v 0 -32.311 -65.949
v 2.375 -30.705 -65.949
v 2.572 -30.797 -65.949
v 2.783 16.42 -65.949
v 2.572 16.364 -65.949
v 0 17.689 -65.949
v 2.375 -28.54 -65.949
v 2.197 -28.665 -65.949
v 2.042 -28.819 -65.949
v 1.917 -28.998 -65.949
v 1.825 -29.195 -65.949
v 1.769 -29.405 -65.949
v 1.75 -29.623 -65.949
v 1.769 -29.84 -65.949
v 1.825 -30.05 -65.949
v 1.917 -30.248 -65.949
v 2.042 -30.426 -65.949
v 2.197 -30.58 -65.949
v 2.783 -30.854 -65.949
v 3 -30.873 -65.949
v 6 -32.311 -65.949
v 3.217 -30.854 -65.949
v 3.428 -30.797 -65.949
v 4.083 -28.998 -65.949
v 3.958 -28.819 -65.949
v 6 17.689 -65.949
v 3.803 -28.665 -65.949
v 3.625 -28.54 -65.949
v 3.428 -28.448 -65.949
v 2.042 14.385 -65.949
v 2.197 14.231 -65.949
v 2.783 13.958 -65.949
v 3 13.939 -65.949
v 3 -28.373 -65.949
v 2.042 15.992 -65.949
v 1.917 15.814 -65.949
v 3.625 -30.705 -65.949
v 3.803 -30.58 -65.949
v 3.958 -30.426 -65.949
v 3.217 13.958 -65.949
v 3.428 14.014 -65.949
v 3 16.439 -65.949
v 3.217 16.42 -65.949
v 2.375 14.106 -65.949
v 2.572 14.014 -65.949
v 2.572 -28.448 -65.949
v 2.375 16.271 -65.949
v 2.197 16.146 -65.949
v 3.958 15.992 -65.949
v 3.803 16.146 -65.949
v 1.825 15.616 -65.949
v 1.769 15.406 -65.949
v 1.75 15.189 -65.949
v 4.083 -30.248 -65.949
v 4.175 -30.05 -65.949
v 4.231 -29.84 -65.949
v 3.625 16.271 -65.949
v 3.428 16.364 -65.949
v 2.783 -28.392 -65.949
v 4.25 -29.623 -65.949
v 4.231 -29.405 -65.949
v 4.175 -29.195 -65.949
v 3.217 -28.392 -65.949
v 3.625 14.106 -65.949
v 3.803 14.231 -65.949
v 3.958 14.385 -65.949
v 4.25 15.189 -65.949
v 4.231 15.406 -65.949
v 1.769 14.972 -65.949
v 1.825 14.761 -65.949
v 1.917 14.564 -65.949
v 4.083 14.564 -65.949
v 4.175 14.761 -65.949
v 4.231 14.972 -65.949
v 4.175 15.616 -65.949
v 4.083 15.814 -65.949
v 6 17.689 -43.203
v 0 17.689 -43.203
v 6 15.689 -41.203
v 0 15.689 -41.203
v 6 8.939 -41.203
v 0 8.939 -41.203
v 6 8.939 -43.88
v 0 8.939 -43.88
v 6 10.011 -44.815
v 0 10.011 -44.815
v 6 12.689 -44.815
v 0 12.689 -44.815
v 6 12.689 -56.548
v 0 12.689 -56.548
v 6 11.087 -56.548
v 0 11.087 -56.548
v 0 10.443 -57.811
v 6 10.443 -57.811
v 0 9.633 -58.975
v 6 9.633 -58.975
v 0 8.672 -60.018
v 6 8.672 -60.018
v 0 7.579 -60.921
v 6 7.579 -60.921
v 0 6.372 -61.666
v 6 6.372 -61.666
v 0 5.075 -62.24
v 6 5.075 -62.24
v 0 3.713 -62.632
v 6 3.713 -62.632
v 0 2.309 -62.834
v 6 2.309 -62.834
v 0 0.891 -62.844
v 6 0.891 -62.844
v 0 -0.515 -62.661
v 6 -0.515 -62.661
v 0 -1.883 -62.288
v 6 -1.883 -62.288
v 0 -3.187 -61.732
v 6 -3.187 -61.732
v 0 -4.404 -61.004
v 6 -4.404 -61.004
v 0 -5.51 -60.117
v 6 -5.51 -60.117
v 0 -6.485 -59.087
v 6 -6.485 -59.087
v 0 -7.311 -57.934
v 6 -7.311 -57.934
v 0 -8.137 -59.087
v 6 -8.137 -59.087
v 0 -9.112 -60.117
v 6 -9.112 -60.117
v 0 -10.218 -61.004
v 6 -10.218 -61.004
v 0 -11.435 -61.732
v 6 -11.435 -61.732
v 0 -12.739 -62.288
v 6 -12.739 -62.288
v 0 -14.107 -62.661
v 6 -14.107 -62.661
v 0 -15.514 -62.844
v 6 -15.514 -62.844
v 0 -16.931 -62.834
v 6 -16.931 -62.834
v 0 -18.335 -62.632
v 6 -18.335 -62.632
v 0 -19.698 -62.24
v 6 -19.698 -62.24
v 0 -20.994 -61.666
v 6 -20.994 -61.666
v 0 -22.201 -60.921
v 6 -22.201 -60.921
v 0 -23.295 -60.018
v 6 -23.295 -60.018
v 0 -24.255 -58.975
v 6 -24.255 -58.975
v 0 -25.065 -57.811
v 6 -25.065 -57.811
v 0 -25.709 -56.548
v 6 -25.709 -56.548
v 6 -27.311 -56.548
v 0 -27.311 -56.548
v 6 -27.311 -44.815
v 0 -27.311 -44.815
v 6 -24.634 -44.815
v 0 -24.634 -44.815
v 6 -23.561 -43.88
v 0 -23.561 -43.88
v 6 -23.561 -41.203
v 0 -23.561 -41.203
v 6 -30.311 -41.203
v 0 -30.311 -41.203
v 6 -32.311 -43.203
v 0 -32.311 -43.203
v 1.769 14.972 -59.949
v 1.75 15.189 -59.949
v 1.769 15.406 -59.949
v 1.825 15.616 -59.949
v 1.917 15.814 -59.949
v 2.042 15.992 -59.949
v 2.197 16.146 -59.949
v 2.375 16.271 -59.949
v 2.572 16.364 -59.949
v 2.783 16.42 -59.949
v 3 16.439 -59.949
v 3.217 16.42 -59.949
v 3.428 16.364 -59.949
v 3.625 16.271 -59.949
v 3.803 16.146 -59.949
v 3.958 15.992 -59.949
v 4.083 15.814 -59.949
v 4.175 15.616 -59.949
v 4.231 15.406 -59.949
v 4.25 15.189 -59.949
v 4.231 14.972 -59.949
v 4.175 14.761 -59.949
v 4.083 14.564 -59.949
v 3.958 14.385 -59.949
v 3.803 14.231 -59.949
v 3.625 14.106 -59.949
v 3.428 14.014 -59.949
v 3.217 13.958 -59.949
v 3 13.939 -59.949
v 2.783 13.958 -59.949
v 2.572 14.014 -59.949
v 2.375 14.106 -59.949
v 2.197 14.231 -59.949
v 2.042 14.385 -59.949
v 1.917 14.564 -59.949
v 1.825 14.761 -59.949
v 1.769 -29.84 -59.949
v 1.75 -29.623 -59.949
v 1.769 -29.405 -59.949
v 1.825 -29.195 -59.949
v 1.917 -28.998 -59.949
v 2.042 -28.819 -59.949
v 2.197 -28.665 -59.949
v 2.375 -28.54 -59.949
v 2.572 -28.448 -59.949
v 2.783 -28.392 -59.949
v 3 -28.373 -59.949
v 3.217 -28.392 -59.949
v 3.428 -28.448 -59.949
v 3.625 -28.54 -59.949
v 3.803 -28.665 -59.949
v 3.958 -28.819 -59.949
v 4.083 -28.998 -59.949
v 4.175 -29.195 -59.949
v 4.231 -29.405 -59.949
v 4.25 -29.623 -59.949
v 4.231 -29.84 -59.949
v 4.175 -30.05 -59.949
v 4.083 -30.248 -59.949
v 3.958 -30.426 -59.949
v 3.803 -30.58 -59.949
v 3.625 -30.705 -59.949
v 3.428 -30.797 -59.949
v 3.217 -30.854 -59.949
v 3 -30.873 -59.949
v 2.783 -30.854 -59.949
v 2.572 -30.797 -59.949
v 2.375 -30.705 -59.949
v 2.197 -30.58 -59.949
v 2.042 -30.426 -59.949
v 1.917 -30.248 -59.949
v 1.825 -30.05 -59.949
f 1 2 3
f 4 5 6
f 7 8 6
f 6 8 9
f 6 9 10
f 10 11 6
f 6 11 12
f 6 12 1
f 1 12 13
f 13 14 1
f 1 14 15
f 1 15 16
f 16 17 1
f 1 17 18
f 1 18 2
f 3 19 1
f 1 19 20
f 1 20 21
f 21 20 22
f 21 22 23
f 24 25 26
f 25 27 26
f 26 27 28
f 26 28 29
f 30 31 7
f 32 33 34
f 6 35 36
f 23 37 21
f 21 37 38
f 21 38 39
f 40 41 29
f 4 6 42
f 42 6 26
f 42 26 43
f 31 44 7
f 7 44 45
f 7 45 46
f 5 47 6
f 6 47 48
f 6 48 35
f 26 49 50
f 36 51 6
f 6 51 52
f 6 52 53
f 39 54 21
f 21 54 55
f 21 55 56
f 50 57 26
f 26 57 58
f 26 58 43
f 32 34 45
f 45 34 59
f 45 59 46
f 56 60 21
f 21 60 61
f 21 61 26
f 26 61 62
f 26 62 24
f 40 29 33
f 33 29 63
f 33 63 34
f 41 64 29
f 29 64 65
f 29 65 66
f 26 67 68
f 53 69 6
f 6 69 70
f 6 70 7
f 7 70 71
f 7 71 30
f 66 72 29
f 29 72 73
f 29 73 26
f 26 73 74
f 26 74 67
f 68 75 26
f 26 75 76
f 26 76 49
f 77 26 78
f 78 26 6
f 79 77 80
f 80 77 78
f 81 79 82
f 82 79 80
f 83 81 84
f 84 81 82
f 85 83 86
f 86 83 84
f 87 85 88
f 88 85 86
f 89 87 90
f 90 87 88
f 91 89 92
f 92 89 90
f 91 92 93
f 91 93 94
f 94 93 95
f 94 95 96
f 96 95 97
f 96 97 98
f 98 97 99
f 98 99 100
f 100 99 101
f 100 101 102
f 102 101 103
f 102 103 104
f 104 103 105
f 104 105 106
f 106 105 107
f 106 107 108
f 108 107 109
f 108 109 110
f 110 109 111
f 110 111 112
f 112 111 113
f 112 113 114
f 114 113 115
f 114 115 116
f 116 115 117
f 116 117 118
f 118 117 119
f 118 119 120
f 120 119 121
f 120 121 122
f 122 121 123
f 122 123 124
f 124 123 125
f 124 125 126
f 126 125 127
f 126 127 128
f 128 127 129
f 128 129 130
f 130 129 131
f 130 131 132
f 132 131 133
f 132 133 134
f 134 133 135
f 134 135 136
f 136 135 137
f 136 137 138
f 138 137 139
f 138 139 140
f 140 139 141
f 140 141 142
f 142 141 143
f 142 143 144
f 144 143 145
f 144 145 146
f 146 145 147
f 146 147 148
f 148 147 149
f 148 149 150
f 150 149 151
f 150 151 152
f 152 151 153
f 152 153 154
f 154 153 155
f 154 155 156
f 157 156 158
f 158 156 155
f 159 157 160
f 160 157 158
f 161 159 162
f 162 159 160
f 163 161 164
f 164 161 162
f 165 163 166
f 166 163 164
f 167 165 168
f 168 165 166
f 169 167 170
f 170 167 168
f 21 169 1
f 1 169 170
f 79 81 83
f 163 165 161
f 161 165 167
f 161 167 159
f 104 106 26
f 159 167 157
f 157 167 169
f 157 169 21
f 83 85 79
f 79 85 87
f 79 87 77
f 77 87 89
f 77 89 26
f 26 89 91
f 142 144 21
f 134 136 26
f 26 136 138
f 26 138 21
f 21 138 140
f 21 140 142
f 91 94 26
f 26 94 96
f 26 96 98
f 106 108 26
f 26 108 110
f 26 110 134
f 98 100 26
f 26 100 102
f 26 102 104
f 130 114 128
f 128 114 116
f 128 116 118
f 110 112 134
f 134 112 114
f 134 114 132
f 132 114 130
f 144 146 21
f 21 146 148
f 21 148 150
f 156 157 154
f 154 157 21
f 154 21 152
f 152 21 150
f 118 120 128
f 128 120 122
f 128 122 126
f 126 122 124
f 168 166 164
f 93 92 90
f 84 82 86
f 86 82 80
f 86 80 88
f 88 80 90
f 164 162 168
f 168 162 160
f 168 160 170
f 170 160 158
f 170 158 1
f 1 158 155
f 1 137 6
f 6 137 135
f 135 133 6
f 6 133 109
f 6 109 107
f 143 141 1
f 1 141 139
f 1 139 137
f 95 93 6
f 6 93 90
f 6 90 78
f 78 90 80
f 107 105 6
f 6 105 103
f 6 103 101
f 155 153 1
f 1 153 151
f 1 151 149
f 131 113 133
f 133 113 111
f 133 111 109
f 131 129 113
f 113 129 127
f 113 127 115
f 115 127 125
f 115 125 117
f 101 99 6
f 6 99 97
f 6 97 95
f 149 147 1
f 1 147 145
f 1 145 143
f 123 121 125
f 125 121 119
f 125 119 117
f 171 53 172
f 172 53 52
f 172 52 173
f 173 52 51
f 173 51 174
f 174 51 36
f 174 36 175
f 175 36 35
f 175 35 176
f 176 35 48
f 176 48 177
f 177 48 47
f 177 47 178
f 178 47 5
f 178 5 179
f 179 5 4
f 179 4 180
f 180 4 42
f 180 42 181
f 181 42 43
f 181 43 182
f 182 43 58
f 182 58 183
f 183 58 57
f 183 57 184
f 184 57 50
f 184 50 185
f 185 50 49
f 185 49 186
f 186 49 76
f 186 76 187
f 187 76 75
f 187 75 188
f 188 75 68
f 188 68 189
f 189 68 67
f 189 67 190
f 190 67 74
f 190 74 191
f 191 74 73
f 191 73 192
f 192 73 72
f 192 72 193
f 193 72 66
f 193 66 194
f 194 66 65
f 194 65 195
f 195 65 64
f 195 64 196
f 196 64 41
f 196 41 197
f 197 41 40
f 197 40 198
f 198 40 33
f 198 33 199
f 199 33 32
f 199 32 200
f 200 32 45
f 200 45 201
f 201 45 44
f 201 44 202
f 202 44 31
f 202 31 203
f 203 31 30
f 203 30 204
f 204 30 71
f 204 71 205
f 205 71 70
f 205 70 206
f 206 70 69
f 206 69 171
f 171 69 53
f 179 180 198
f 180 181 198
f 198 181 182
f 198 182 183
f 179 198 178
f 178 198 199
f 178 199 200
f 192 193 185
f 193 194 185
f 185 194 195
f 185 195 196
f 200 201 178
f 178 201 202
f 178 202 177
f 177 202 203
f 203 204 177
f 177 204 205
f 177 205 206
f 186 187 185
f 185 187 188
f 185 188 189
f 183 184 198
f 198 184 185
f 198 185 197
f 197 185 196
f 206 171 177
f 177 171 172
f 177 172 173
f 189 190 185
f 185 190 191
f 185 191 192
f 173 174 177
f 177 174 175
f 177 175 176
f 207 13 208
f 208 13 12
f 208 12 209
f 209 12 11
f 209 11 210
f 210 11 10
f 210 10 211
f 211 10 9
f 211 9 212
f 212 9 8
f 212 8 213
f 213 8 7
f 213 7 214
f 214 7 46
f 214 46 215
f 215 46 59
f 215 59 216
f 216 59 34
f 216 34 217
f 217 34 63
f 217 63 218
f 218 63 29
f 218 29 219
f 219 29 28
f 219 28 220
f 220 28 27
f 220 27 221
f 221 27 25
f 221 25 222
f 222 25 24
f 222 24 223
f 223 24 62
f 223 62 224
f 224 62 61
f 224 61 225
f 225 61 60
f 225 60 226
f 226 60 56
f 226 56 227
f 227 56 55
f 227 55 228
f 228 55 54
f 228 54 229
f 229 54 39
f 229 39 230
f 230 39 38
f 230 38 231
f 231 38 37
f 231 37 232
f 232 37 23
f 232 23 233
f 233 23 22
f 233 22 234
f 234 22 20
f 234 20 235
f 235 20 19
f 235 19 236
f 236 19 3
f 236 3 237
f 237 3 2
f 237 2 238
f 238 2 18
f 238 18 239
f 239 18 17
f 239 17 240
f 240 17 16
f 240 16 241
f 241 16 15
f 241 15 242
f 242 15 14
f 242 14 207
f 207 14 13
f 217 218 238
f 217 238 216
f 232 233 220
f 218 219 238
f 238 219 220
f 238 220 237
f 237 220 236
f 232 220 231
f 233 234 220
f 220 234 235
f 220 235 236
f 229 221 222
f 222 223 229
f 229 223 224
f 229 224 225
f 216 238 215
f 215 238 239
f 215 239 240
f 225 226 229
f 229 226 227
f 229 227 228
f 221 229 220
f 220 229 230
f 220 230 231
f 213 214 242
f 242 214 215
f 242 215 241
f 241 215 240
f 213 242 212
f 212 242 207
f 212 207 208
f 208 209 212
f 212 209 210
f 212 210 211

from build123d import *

# Parameters (mm, degrees)
BOSS_EXTRUDE1_DEPTH = 6
SKETCH4_R           = 1.25
CUT_EXTRUDE1_DEPTH  = 6


with BuildPart() as part:
    # Sketch1 → Boss-Extrude1 (new body)
    with BuildSketch(Plane(origin=(0, 0, 0), x_dir=(0, 0, -1), z_dir=(1, 0, 0))):
        with BuildLine():
            Line((41.203205101, 15.688911622), (43.203205101, 17.688911622))
            Line((43.203205101, 17.688911622), (65.948748697, 17.688911622))
            Line((65.948748697, 17.688911622), (65.948748697, -32.311088378))
            Line((65.948748697, -32.311088378), (43.203205101, -32.311088378))
            Line((43.203205101, -32.311088378), (41.203205101, -30.311088378))
            Line((41.203205101, -30.311088378), (41.203205101, -23.561088378))
            Line((41.203205101, -23.561088378), (43.880106331, -23.561088378))
            Line((43.880106331, -23.561088378), (44.81485523, -24.633587377))
            Line((44.81485523, -24.633587377), (44.81485523, -27.311088378))
            Line((44.81485523, -27.311088378), (56.547992273, -27.311088378))
            Line((56.547992273, -27.311088378), (56.547992273, -25.708962028))
            ThreePointArc((56.547992273, -25.708962028), (62.834374894, -16.931491254), (57.934329164, -7.311088378))
            ThreePointArc((57.934329164, -7.311088378), (62.834374894, 2.309314498), (56.547992273, 11.086785272))
            Line((56.547992273, 11.086785272), (56.547992273, 12.688911622))
            Line((56.547992273, 12.688911622), (44.81485523, 12.688911622))
            Line((44.81485523, 12.688911622), (44.81485523, 10.011410621))
            Line((44.81485523, 10.011410621), (43.880106331, 8.938911622))
            Line((43.880106331, 8.938911622), (41.203205101, 8.938911622))
            Line((41.203205101, 8.938911622), (41.203205101, 15.688911622))
        make_face()
    extrude(amount=BOSS_EXTRUDE1_DEPTH)

    # Sketch4 → Cut-Extrude1 (cut)
    with BuildSketch(Plane(origin=(0, 0, -65.948748697), x_dir=(-1, 0, 0), z_dir=(0, 0, -1))):
        with Locations((-3, 15.188911622)):
            Circle(SKETCH4_R)
        with Locations(Location((-3, -29.622535768, 0), (0, 0, 180))):
            Circle(SKETCH4_R)
    extrude(amount=-CUT_EXTRUDE1_DEPTH, mode=Mode.SUBTRACT)


solid = part.part
